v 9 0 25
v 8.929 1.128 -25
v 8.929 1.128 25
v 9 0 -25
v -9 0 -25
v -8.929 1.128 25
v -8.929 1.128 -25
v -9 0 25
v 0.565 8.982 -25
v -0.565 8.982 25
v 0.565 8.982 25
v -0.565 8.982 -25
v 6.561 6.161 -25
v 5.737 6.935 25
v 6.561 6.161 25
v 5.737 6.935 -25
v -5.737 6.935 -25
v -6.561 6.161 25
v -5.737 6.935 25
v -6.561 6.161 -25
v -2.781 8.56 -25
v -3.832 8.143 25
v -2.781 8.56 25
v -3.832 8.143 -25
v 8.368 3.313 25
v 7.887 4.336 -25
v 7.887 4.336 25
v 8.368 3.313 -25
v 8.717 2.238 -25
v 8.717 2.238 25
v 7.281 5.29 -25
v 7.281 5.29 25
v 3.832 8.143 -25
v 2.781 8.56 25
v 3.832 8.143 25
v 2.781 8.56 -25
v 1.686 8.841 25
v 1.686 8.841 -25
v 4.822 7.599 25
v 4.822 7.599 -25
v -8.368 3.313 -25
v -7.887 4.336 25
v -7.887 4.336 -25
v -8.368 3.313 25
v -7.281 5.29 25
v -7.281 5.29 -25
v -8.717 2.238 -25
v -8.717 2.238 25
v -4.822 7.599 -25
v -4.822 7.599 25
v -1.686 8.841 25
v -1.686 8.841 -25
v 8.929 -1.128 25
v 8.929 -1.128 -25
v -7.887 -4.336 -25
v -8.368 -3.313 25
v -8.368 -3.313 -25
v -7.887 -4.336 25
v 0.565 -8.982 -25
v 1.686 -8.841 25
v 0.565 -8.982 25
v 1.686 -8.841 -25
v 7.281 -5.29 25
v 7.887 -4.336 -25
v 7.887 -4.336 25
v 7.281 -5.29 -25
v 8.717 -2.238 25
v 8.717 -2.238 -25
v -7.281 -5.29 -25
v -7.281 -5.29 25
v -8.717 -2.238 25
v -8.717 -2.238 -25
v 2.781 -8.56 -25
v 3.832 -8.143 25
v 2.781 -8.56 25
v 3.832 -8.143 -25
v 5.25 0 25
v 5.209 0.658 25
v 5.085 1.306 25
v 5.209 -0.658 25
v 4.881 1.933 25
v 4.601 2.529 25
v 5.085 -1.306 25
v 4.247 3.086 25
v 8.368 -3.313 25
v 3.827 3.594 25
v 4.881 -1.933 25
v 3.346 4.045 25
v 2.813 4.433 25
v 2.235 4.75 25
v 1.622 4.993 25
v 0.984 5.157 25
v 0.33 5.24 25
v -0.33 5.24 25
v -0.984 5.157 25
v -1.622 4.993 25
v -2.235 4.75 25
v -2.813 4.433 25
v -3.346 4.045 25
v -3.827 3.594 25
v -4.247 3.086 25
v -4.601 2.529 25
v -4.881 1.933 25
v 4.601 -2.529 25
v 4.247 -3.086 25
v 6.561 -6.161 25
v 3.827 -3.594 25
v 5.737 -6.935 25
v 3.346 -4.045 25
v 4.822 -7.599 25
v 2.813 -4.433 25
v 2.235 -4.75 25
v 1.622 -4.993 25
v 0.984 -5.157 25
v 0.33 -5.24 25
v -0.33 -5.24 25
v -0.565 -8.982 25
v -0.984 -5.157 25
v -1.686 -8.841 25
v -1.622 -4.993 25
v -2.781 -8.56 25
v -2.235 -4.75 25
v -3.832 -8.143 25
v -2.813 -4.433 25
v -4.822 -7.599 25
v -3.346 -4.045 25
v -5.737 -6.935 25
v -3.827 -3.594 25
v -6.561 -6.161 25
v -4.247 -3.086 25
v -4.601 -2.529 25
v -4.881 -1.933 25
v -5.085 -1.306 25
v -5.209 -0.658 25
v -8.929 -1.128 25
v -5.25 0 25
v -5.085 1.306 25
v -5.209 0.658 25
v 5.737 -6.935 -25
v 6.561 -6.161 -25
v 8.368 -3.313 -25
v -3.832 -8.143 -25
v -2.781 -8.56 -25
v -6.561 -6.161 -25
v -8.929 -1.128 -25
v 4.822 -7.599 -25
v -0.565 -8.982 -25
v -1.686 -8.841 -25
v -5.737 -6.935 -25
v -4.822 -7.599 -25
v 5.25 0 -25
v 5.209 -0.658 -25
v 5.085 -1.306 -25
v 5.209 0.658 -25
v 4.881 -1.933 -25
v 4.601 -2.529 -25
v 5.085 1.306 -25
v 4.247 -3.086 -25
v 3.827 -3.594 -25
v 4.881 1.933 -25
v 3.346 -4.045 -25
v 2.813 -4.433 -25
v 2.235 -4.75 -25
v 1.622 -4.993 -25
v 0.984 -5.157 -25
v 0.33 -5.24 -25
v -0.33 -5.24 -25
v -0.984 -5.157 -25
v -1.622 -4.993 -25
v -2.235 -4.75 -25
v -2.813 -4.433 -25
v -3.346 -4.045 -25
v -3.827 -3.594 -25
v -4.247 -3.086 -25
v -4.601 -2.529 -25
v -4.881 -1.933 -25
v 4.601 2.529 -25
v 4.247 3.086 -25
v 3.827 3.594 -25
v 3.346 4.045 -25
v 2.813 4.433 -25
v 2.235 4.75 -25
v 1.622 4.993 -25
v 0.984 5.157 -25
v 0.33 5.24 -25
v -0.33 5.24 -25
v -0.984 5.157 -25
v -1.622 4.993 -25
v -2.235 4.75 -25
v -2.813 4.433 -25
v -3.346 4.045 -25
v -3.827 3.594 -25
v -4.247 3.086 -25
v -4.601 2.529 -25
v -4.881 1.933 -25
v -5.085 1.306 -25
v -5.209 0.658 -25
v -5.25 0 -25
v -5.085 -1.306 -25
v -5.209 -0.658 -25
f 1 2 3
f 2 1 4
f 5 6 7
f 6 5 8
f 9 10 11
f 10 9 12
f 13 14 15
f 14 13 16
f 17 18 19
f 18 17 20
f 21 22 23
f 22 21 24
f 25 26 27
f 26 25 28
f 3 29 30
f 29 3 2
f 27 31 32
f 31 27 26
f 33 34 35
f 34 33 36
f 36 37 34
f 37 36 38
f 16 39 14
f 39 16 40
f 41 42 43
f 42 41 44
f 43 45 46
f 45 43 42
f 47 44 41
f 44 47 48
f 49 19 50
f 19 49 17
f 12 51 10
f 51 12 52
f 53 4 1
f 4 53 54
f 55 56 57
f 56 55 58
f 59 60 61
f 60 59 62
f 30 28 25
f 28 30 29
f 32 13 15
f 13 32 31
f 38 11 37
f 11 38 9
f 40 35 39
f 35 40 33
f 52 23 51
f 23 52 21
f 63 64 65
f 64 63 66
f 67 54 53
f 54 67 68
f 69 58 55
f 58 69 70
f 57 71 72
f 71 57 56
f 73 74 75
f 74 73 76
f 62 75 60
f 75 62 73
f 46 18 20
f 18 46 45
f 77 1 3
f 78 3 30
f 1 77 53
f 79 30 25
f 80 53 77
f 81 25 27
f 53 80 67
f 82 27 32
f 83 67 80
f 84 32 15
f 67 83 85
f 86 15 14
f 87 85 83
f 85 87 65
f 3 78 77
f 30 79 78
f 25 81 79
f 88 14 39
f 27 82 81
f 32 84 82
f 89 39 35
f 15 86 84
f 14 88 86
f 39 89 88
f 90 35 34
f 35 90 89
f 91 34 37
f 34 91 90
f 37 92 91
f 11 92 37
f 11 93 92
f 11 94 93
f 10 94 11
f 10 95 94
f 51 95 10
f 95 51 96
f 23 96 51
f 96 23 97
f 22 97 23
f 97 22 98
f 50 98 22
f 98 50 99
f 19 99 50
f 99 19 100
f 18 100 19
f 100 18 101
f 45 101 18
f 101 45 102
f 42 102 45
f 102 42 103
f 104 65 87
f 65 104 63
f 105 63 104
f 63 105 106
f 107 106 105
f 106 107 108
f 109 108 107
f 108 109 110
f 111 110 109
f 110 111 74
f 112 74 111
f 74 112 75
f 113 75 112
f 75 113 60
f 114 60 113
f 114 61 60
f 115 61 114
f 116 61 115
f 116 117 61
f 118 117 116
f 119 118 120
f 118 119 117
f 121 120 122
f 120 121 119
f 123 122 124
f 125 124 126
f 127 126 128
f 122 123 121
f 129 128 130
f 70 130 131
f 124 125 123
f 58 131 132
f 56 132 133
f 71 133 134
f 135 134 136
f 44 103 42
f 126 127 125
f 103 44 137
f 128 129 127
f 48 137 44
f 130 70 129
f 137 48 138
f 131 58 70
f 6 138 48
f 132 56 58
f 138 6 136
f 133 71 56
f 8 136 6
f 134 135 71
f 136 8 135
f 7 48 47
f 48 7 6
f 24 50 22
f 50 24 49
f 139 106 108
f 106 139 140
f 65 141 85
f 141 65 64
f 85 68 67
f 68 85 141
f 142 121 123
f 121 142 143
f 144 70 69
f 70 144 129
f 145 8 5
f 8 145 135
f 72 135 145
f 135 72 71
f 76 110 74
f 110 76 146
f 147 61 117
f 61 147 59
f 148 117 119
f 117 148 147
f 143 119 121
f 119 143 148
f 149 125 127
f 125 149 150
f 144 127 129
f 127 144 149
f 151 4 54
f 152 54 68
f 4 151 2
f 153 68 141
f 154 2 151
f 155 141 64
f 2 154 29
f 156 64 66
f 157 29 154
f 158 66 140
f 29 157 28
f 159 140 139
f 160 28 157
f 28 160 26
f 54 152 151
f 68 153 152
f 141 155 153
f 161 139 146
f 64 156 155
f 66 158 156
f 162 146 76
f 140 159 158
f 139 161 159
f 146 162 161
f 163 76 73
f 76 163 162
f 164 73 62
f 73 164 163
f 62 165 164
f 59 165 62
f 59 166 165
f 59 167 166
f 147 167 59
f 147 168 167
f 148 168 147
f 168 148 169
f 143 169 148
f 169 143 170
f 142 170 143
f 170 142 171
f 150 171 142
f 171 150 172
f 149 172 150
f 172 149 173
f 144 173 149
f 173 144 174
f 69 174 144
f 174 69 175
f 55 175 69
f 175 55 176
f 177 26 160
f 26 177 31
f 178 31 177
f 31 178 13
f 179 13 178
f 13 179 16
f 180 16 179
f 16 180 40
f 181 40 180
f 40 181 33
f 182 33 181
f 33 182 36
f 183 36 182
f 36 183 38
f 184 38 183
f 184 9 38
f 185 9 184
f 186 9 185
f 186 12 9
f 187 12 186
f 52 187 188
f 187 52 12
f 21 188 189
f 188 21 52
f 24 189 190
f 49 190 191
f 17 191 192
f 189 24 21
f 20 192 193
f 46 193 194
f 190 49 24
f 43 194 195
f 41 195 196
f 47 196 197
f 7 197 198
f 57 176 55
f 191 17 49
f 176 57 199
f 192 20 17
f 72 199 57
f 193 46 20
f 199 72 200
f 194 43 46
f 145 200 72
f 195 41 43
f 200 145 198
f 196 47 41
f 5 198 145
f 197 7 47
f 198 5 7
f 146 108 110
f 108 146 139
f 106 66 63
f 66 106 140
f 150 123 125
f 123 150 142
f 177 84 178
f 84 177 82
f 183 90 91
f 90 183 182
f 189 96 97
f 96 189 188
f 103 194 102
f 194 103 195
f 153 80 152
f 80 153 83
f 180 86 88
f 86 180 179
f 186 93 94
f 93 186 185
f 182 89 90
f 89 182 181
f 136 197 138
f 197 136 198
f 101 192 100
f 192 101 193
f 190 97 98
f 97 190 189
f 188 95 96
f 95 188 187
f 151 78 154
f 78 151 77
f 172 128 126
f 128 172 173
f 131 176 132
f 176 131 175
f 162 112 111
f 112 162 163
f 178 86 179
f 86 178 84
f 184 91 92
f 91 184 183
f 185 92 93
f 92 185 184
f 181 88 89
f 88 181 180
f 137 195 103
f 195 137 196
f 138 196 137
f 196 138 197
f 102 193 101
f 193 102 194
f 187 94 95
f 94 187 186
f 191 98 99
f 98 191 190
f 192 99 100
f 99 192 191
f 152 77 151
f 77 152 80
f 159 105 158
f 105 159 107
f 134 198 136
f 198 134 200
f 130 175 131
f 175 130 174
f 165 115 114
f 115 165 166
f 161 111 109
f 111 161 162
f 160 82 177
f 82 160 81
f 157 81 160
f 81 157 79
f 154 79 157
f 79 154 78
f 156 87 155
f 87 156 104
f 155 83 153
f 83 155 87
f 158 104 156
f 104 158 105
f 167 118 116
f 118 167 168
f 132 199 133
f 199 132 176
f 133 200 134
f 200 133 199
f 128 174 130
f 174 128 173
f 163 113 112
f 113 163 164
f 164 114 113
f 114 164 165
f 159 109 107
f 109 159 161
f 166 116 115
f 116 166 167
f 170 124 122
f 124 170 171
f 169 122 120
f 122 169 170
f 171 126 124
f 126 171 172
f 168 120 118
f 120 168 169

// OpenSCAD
$fn = 50;


difference() {
	union() {
		translate(v = [0, 0, -25.0000000000]) {
			cylinder(h = 50, r = 9.0000000000);
		}
	}
	union() {
		translate(v = [0, 0, -100.0000000000]) {
			cylinder(h = 200, r = 5.2500000000);
		}
	}
}
